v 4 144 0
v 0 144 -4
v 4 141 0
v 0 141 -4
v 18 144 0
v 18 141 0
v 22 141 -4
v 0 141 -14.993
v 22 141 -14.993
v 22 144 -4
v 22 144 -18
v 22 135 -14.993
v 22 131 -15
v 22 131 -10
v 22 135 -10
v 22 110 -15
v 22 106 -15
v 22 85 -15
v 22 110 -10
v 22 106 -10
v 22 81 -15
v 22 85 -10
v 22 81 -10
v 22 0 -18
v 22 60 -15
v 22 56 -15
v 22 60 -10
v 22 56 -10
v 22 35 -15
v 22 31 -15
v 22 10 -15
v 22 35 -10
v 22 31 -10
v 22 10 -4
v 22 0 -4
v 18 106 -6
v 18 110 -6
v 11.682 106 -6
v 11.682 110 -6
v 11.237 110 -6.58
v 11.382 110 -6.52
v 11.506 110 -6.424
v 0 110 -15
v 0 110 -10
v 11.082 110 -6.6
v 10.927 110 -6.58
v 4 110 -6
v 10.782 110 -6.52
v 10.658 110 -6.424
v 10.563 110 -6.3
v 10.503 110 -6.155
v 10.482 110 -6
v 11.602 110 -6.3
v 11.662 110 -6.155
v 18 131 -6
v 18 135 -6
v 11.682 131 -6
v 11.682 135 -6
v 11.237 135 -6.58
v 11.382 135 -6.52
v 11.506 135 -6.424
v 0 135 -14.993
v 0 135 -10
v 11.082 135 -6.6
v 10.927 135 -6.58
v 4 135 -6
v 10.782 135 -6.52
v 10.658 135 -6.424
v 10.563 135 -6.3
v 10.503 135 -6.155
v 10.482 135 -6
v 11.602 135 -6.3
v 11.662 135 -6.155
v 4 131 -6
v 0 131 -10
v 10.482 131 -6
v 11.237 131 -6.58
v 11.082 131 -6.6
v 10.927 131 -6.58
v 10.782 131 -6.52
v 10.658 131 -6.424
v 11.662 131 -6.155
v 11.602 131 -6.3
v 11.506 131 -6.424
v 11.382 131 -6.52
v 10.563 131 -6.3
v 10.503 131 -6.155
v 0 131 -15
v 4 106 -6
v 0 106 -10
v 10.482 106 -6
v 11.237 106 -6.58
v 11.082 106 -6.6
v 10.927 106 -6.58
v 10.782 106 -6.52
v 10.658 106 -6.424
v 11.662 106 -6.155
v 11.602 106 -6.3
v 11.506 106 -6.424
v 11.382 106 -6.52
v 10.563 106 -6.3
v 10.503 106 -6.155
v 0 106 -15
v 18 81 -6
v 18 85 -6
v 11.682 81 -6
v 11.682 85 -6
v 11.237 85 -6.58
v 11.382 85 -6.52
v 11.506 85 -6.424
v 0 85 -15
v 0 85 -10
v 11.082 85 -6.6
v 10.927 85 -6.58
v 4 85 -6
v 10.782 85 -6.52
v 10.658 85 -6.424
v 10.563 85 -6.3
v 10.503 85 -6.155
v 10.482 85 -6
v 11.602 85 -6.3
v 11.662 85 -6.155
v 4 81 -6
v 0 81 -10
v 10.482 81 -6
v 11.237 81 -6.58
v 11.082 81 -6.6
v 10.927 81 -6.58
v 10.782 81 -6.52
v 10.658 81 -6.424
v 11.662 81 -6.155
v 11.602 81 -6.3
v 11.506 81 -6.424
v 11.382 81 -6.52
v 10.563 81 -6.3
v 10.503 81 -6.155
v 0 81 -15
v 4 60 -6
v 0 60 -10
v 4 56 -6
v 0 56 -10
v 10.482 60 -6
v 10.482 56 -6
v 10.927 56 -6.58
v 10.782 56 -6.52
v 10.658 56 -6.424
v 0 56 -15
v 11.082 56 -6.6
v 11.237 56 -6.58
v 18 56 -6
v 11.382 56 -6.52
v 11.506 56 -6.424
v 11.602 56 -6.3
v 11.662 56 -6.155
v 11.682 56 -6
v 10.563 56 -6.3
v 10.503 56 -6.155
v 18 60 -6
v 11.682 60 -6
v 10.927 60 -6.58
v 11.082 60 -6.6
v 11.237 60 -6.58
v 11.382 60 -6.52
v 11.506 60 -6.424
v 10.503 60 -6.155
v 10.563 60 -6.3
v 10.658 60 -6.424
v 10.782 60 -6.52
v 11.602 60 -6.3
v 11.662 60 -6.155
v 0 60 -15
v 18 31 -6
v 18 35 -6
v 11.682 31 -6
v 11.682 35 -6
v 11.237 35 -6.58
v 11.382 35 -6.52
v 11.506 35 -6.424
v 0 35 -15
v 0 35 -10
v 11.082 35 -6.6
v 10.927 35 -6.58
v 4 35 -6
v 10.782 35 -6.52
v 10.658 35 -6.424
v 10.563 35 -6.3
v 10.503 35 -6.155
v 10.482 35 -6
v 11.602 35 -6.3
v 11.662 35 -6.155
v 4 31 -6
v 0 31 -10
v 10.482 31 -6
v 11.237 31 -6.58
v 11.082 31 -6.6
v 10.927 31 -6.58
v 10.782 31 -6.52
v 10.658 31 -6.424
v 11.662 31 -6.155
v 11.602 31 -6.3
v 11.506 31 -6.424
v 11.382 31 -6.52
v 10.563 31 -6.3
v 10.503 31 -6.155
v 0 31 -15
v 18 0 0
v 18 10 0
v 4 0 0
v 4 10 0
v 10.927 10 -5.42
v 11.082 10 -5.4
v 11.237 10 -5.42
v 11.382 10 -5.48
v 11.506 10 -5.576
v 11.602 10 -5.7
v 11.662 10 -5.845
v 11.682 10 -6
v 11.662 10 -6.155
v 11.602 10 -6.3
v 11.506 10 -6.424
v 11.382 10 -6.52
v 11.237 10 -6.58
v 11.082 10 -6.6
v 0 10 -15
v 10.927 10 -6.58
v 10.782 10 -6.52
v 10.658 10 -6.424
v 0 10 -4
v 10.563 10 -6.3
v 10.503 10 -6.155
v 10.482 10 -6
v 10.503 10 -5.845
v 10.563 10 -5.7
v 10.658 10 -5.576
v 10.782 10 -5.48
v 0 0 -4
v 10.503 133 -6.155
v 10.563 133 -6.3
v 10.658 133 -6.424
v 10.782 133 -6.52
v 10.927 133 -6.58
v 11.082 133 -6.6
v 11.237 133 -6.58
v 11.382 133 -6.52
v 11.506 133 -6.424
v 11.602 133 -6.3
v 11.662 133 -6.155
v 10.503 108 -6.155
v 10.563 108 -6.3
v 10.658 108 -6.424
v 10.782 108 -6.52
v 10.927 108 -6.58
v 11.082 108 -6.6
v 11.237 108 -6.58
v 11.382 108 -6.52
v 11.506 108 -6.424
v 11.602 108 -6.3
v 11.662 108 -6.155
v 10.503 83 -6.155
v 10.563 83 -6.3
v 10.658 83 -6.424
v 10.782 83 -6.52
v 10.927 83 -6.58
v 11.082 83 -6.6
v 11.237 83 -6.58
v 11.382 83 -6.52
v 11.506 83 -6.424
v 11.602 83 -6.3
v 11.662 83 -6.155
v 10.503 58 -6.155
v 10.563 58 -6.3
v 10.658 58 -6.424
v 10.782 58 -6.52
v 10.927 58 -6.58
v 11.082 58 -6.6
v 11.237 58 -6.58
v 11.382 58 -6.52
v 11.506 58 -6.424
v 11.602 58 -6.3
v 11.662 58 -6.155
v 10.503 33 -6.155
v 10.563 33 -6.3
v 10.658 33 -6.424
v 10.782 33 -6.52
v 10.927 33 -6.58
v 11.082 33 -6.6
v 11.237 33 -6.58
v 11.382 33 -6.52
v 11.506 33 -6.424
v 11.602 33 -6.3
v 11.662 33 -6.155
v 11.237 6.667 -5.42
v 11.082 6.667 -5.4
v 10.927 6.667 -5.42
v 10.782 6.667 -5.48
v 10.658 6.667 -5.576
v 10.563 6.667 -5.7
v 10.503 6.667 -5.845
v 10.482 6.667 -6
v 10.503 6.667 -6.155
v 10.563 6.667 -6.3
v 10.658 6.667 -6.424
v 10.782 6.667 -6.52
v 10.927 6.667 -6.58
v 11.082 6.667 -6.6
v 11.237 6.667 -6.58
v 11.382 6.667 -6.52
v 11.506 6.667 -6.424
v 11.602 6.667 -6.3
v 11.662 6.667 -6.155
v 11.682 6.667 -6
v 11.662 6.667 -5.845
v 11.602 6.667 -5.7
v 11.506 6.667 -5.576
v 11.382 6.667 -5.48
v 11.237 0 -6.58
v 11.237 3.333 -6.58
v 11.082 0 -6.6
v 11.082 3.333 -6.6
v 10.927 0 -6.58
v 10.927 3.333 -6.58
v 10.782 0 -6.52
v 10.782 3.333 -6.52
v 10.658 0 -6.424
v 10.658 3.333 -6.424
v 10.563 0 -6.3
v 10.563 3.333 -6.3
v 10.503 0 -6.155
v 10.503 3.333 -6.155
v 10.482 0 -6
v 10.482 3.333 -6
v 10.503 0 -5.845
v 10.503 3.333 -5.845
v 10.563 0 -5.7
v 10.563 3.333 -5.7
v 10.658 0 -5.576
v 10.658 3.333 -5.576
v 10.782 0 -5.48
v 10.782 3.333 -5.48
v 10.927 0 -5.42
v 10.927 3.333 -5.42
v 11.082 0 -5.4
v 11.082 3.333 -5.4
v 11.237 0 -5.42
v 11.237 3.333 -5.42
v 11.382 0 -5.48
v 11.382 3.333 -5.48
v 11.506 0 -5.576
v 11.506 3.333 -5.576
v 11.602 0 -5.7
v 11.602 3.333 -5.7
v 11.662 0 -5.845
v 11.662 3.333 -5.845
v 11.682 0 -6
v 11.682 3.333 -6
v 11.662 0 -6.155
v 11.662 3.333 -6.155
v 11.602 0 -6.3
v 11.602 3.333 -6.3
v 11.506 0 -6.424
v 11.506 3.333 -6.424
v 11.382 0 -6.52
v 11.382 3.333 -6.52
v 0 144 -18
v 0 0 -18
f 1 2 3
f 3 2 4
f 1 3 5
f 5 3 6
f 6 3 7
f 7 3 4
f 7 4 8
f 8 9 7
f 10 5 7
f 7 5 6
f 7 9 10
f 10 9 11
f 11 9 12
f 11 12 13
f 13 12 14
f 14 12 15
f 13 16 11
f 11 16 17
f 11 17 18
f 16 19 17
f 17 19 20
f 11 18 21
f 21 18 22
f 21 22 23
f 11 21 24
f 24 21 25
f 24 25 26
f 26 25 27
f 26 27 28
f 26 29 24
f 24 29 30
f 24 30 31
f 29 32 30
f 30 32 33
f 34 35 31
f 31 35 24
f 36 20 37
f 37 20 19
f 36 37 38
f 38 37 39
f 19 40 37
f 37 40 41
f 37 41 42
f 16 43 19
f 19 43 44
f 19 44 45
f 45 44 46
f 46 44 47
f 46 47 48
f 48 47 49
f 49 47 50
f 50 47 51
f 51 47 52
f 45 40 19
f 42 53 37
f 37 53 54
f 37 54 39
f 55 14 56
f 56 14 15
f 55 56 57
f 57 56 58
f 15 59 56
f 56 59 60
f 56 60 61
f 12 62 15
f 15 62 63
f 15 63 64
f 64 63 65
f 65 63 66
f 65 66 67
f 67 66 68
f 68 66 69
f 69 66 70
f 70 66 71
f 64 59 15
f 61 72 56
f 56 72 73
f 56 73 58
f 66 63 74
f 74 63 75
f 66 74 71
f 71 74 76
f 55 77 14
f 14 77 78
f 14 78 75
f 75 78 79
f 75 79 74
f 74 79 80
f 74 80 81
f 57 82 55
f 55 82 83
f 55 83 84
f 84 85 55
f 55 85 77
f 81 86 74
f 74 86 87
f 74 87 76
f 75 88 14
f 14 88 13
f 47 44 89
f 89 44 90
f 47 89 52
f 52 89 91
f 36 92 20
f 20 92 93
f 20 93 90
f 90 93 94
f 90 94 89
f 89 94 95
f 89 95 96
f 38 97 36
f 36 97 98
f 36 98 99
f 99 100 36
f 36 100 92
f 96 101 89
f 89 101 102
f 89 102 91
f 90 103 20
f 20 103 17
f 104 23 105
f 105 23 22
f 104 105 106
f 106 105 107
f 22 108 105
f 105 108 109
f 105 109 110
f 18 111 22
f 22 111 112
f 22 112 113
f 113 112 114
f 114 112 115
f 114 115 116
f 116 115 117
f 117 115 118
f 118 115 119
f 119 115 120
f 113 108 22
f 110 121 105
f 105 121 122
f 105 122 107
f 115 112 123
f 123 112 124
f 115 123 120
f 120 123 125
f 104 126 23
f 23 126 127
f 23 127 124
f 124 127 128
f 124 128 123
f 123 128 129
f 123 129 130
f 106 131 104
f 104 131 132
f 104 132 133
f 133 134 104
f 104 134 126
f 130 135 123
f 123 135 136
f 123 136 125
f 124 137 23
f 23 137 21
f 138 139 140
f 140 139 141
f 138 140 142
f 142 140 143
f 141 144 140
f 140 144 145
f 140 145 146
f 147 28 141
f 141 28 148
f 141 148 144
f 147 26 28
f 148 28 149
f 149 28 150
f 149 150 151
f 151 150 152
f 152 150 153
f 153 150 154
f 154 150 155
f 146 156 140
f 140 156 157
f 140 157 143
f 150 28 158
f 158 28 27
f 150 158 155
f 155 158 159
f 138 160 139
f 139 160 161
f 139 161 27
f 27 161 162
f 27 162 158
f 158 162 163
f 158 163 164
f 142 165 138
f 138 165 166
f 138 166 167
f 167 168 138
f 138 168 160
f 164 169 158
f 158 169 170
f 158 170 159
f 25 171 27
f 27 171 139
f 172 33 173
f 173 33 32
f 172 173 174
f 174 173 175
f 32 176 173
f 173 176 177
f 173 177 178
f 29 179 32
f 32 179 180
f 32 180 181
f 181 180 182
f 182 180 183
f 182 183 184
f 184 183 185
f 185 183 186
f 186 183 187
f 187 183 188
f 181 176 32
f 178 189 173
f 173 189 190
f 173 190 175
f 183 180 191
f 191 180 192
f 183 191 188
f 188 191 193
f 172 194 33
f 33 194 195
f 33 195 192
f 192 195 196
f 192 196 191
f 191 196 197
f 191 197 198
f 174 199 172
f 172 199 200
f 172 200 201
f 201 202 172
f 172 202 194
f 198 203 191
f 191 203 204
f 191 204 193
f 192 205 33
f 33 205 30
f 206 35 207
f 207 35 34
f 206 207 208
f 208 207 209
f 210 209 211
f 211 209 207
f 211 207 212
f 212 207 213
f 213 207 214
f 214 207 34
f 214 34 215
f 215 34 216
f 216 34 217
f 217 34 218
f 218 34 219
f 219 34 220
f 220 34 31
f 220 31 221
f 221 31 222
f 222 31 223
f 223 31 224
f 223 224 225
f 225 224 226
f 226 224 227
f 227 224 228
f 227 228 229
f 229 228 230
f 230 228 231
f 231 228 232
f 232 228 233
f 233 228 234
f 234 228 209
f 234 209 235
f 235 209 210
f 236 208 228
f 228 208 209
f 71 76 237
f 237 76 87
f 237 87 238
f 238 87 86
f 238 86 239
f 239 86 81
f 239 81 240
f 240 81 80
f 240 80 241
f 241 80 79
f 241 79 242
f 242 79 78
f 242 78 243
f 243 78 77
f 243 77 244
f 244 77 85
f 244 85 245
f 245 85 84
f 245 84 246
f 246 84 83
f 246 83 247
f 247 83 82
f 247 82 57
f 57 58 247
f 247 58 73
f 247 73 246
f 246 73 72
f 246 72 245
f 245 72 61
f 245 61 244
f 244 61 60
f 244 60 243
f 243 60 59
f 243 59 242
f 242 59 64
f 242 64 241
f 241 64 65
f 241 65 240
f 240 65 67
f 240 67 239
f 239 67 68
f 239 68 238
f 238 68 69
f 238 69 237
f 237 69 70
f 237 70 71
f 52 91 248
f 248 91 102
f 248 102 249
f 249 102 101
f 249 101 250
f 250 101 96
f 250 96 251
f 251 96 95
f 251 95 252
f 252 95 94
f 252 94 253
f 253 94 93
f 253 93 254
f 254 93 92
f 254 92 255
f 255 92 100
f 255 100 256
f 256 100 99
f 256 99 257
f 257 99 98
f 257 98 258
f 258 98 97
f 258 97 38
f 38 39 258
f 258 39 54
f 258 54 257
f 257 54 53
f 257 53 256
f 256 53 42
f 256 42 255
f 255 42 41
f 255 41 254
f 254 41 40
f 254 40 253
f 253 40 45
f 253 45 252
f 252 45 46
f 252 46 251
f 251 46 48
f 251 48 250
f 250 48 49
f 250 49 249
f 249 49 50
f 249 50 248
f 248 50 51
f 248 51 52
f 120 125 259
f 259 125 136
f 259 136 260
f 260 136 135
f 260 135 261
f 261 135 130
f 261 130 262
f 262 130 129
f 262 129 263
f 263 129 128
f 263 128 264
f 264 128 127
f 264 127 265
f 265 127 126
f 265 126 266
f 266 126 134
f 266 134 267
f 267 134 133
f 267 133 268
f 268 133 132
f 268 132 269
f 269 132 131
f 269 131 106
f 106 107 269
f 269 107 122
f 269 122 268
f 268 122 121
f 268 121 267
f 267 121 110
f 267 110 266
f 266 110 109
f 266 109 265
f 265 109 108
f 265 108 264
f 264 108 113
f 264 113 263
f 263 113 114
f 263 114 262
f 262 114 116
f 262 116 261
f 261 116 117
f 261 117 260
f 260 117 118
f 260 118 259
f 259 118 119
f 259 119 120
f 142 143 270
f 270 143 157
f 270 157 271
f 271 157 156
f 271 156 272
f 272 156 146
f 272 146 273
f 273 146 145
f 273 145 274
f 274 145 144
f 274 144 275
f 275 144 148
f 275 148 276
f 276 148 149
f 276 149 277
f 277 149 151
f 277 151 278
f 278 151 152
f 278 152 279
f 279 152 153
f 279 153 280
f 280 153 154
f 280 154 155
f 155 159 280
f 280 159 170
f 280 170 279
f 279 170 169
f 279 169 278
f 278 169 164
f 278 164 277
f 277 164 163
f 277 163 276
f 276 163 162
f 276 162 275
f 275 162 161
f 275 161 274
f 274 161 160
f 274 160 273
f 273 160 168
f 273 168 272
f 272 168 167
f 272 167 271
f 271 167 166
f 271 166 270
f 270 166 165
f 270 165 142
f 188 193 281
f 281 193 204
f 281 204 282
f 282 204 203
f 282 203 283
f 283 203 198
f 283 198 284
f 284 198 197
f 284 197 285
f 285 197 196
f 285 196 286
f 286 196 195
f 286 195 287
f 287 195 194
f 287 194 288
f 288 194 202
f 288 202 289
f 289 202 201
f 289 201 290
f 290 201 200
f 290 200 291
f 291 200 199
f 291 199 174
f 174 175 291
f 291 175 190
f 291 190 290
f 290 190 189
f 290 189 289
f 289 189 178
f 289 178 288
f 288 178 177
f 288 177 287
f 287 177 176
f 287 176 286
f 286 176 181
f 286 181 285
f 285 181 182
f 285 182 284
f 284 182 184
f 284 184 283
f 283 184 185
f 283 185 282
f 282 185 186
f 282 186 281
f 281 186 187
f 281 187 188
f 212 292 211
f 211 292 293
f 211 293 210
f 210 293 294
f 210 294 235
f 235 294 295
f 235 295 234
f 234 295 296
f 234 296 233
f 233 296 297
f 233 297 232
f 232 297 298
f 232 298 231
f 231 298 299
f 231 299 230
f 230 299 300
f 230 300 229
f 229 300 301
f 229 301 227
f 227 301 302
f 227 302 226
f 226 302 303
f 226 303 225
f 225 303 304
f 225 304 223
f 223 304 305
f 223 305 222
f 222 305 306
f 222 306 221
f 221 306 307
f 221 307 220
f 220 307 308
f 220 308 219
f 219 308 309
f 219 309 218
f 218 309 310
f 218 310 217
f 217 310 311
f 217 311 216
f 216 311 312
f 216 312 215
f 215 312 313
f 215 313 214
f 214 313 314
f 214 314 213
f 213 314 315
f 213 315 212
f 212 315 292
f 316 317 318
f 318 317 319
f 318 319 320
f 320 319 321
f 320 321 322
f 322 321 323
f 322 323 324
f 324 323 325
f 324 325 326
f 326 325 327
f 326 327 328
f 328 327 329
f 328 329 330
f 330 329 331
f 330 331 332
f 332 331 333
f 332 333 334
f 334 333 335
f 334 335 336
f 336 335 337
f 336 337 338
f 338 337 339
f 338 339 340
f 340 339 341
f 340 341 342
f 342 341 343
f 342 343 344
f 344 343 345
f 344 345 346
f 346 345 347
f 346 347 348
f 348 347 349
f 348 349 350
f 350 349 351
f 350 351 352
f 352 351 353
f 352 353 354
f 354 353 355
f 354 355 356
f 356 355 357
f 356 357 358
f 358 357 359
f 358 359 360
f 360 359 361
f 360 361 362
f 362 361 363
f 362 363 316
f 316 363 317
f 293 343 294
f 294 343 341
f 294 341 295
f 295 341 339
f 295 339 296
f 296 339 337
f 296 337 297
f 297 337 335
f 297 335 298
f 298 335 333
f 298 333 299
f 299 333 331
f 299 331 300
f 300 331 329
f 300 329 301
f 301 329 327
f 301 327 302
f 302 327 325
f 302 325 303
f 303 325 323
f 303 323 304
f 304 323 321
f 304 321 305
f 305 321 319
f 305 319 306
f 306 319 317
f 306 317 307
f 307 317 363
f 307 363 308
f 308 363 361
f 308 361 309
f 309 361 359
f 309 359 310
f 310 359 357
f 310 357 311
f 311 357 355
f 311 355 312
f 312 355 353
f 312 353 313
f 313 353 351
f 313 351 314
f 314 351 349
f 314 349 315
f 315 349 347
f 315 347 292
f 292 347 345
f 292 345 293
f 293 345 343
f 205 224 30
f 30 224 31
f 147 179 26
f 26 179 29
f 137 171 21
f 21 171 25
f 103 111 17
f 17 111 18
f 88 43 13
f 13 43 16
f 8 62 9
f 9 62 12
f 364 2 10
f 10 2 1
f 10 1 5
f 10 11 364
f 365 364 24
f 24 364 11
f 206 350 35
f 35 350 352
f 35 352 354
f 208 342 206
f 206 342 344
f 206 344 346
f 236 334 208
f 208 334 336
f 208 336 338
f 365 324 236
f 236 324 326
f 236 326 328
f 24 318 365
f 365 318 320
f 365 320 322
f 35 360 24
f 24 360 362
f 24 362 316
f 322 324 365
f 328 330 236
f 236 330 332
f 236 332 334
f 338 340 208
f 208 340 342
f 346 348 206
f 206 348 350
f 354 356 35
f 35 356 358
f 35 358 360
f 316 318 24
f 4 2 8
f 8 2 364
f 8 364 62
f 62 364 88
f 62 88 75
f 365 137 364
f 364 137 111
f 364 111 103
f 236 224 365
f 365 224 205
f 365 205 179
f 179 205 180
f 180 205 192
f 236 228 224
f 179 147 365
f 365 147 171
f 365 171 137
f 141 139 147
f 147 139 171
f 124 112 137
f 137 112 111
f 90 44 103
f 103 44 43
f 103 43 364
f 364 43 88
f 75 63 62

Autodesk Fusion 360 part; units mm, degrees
sketch "Sketch1" plane through (0, 0, 0) normal (1, 0, 0) x (0, 1, 0)
  line L0 (0, 0) -> (10, 0)
  line L1 (10, 0) -> (10, -18)
  line L2 (10, -18) -> (0, -18)
  line L3 (0, -18) -> (0, 0)
  line L4 (0, -18) -> (35, -18)
  line L5 (35, -18) -> (35, -15)
  line L6 (35, -15) -> (0, -15)
  line L7 (0, -15) -> (0, -18)
  line L8 (35, -18) -> (31, -18)
  line L9 (31, -18) -> (31, -6)
  line L10 (31, -6) -> (35, -6)
  line L11 (35, -6) -> (35, -18)
  line L12 (10, 0) -> (31, 0)
  line L13 (31, 0) -> (31, -15)
  line L14 (31, -15) -> (10, -15)
  line L15 (10, -15) -> (10, 0)
  line L16 (35, 0) -> (56, 0)
  line L17 (60, -6) -> (60, -18)
  line L18 (56, -6) -> (60, -6)
  line L19 (56, 0) -> (56, -15)
  line L20 (56, -18) -> (56, -6)
  line L21 (60, -18) -> (56, -18)
  line L22 (25, -18) -> (60, -18)
  line L23 (60, -15) -> (25, -15)
  line L24 (35, -15) -> (35, 0)
  line L25 (35, 0) -> (35, -18)
  line L26 (60, 0) -> (81, 0)
  line L27 (85, -6) -> (85, -18)
  line L28 (81, -6) -> (85, -6)
  line L29 (81, 0) -> (81, -15)
  line L30 (81, -18) -> (81, -6)
  line L31 (85, -18) -> (81, -18)
  line L32 (50, -18) -> (85, -18)
  line L33 (85, -15) -> (50, -15)
  line L34 (60, -15) -> (60, 0)
  line L35 (60, 0) -> (60, -18)
  line L36 (85, 0) -> (106, 0)
  line L37 (110, -6) -> (110, -18)
  line L38 (106, -6) -> (110, -6)
  line L39 (106, 0) -> (106, -15)
  line L40 (106, -18) -> (106, -6)
  line L41 (110, -18) -> (106, -18)
  line L42 (75, -18) -> (110, -18)
  line L43 (110, -15) -> (75, -15)
  line L44 (85, -15) -> (85, 0)
  line L45 (85, 0) -> (85, -18)
  line L46 (110, 0) -> (131, 0)
  line L47 (135, -6) -> (135, -18)
  line L48 (131, -6) -> (135, -6)
  line L49 (131, 0) -> (131, -15)
  line L50 (131, -18) -> (131, -6)
  line L51 (135, -18) -> (131, -18)
  line L52 (100, -18) -> (135, -18)
  line L53 (135, -15) -> (100, -15)
  line L54 (110, -15) -> (110, 0)
  line L55 (110, 0) -> (110, -18)
  line L56 (135, -18) -> (141, -18)
  line L57 (141, -18) -> (141, -14.9934)
  line L58 (141, -14.9934) -> (135, -14.9934)
  line L59 (135, -14.9934) -> (135, -18)
  line L60 (141, -18) -> (144, -18)
  line L61 (144, -18) -> (144, 0)
  line L62 (144, 0) -> (141, 0)
  line L63 (141, 0) -> (141, -18)
  dimension "d1" = 10
  dimension "d2" = 18
  dimension "d3" = 35
  dimension "d4" = 3
  dimension "d5" = 4
  dimension "d6" = 12
  dimension "d17" = 21
  dimension "d20" = 100
  dimension "d21" = 0
  dimension "d22" = 6
  dimension "d23" = 3
  dimension "d24" = 18
extrude "Extrude1" add sketch "Sketch1" along normal blind 22 contours L0 L1 L3 L6 L15 | L1 L2 L3 L4 L6 L7 | L1 L4 L6 L9 L14 L22 L23 | L6 L9 L10 L11 L13 L23 L24 L25 | L4 L5 L6 L8 L9 L11 L22 L23 L25 | L5 L11 L20 L22 L23 L25 L32 L33 | L17 L20 L21 L22 L23 L32 L33 L35 | L17 L18 L19 L20 L23 L33 L34 L35 | L17 L30 L32 L33 L35 L42 L43 | L27 L30 L31 L32 L33 L42 L43 L45 | L27 L28 L29 L30 L33 L43 L44 L45 | L27 L40 L42 L43 L45 L52 L53 | L37 L40 L41 L42 L43 L52 L53 L55 | L37 L38 L39 L40 L43 L53 L54 L55 | L37 L50 L52 L53 L55 | L47 L50 L51 L52 L53 L59 | L47 L48 L49 L50 L53 L59 | L47 L56 L57 L58 L59 L63 | L57 L60 L61 L62 L63
sketch "Sketch2" plane through (0, 0, 0) normal (0, -1, 0) x (1, 0, 0)
  line L0 (0, 0) -> (0, -18)
  line L1 (0, -18) -> (22, -18)
  line L2 (22, -18) -> (22, 0)
  line L3 (22, 0) -> (0, 0)
  line L4 (0, 0) -> (22.1644, 0)
  line L5 (22.1644, 0) -> (22.1644, -6)
  line L6 (22.1644, -6) -> (0, -6)
  line L7 (0, -6) -> (0, 0)
  circle A0 centre (11.0822, -6) radius 0.5
  dimension "d9" = 6
  dimension "d10" = 1
hole "Hole1" at (11.0822, 0, -6) direction (0, 1, 0) diameter 1.2 depth 136 tip angle 140
chamfer "Chamfer1" distance 4 angle 45 14 edges at (0, 5, 0) (22, 5, 0) (0, 33, -6) (22, 33, -6) (22, 58, -6) (0, 58, -6) (0, 83, -6) (22, 83, -6) (0, 108, -6) (0, 133, -6) (22, 133, -6) (22, 108, -6) (22, 142.5, 0) (0, 142.5, 0)
